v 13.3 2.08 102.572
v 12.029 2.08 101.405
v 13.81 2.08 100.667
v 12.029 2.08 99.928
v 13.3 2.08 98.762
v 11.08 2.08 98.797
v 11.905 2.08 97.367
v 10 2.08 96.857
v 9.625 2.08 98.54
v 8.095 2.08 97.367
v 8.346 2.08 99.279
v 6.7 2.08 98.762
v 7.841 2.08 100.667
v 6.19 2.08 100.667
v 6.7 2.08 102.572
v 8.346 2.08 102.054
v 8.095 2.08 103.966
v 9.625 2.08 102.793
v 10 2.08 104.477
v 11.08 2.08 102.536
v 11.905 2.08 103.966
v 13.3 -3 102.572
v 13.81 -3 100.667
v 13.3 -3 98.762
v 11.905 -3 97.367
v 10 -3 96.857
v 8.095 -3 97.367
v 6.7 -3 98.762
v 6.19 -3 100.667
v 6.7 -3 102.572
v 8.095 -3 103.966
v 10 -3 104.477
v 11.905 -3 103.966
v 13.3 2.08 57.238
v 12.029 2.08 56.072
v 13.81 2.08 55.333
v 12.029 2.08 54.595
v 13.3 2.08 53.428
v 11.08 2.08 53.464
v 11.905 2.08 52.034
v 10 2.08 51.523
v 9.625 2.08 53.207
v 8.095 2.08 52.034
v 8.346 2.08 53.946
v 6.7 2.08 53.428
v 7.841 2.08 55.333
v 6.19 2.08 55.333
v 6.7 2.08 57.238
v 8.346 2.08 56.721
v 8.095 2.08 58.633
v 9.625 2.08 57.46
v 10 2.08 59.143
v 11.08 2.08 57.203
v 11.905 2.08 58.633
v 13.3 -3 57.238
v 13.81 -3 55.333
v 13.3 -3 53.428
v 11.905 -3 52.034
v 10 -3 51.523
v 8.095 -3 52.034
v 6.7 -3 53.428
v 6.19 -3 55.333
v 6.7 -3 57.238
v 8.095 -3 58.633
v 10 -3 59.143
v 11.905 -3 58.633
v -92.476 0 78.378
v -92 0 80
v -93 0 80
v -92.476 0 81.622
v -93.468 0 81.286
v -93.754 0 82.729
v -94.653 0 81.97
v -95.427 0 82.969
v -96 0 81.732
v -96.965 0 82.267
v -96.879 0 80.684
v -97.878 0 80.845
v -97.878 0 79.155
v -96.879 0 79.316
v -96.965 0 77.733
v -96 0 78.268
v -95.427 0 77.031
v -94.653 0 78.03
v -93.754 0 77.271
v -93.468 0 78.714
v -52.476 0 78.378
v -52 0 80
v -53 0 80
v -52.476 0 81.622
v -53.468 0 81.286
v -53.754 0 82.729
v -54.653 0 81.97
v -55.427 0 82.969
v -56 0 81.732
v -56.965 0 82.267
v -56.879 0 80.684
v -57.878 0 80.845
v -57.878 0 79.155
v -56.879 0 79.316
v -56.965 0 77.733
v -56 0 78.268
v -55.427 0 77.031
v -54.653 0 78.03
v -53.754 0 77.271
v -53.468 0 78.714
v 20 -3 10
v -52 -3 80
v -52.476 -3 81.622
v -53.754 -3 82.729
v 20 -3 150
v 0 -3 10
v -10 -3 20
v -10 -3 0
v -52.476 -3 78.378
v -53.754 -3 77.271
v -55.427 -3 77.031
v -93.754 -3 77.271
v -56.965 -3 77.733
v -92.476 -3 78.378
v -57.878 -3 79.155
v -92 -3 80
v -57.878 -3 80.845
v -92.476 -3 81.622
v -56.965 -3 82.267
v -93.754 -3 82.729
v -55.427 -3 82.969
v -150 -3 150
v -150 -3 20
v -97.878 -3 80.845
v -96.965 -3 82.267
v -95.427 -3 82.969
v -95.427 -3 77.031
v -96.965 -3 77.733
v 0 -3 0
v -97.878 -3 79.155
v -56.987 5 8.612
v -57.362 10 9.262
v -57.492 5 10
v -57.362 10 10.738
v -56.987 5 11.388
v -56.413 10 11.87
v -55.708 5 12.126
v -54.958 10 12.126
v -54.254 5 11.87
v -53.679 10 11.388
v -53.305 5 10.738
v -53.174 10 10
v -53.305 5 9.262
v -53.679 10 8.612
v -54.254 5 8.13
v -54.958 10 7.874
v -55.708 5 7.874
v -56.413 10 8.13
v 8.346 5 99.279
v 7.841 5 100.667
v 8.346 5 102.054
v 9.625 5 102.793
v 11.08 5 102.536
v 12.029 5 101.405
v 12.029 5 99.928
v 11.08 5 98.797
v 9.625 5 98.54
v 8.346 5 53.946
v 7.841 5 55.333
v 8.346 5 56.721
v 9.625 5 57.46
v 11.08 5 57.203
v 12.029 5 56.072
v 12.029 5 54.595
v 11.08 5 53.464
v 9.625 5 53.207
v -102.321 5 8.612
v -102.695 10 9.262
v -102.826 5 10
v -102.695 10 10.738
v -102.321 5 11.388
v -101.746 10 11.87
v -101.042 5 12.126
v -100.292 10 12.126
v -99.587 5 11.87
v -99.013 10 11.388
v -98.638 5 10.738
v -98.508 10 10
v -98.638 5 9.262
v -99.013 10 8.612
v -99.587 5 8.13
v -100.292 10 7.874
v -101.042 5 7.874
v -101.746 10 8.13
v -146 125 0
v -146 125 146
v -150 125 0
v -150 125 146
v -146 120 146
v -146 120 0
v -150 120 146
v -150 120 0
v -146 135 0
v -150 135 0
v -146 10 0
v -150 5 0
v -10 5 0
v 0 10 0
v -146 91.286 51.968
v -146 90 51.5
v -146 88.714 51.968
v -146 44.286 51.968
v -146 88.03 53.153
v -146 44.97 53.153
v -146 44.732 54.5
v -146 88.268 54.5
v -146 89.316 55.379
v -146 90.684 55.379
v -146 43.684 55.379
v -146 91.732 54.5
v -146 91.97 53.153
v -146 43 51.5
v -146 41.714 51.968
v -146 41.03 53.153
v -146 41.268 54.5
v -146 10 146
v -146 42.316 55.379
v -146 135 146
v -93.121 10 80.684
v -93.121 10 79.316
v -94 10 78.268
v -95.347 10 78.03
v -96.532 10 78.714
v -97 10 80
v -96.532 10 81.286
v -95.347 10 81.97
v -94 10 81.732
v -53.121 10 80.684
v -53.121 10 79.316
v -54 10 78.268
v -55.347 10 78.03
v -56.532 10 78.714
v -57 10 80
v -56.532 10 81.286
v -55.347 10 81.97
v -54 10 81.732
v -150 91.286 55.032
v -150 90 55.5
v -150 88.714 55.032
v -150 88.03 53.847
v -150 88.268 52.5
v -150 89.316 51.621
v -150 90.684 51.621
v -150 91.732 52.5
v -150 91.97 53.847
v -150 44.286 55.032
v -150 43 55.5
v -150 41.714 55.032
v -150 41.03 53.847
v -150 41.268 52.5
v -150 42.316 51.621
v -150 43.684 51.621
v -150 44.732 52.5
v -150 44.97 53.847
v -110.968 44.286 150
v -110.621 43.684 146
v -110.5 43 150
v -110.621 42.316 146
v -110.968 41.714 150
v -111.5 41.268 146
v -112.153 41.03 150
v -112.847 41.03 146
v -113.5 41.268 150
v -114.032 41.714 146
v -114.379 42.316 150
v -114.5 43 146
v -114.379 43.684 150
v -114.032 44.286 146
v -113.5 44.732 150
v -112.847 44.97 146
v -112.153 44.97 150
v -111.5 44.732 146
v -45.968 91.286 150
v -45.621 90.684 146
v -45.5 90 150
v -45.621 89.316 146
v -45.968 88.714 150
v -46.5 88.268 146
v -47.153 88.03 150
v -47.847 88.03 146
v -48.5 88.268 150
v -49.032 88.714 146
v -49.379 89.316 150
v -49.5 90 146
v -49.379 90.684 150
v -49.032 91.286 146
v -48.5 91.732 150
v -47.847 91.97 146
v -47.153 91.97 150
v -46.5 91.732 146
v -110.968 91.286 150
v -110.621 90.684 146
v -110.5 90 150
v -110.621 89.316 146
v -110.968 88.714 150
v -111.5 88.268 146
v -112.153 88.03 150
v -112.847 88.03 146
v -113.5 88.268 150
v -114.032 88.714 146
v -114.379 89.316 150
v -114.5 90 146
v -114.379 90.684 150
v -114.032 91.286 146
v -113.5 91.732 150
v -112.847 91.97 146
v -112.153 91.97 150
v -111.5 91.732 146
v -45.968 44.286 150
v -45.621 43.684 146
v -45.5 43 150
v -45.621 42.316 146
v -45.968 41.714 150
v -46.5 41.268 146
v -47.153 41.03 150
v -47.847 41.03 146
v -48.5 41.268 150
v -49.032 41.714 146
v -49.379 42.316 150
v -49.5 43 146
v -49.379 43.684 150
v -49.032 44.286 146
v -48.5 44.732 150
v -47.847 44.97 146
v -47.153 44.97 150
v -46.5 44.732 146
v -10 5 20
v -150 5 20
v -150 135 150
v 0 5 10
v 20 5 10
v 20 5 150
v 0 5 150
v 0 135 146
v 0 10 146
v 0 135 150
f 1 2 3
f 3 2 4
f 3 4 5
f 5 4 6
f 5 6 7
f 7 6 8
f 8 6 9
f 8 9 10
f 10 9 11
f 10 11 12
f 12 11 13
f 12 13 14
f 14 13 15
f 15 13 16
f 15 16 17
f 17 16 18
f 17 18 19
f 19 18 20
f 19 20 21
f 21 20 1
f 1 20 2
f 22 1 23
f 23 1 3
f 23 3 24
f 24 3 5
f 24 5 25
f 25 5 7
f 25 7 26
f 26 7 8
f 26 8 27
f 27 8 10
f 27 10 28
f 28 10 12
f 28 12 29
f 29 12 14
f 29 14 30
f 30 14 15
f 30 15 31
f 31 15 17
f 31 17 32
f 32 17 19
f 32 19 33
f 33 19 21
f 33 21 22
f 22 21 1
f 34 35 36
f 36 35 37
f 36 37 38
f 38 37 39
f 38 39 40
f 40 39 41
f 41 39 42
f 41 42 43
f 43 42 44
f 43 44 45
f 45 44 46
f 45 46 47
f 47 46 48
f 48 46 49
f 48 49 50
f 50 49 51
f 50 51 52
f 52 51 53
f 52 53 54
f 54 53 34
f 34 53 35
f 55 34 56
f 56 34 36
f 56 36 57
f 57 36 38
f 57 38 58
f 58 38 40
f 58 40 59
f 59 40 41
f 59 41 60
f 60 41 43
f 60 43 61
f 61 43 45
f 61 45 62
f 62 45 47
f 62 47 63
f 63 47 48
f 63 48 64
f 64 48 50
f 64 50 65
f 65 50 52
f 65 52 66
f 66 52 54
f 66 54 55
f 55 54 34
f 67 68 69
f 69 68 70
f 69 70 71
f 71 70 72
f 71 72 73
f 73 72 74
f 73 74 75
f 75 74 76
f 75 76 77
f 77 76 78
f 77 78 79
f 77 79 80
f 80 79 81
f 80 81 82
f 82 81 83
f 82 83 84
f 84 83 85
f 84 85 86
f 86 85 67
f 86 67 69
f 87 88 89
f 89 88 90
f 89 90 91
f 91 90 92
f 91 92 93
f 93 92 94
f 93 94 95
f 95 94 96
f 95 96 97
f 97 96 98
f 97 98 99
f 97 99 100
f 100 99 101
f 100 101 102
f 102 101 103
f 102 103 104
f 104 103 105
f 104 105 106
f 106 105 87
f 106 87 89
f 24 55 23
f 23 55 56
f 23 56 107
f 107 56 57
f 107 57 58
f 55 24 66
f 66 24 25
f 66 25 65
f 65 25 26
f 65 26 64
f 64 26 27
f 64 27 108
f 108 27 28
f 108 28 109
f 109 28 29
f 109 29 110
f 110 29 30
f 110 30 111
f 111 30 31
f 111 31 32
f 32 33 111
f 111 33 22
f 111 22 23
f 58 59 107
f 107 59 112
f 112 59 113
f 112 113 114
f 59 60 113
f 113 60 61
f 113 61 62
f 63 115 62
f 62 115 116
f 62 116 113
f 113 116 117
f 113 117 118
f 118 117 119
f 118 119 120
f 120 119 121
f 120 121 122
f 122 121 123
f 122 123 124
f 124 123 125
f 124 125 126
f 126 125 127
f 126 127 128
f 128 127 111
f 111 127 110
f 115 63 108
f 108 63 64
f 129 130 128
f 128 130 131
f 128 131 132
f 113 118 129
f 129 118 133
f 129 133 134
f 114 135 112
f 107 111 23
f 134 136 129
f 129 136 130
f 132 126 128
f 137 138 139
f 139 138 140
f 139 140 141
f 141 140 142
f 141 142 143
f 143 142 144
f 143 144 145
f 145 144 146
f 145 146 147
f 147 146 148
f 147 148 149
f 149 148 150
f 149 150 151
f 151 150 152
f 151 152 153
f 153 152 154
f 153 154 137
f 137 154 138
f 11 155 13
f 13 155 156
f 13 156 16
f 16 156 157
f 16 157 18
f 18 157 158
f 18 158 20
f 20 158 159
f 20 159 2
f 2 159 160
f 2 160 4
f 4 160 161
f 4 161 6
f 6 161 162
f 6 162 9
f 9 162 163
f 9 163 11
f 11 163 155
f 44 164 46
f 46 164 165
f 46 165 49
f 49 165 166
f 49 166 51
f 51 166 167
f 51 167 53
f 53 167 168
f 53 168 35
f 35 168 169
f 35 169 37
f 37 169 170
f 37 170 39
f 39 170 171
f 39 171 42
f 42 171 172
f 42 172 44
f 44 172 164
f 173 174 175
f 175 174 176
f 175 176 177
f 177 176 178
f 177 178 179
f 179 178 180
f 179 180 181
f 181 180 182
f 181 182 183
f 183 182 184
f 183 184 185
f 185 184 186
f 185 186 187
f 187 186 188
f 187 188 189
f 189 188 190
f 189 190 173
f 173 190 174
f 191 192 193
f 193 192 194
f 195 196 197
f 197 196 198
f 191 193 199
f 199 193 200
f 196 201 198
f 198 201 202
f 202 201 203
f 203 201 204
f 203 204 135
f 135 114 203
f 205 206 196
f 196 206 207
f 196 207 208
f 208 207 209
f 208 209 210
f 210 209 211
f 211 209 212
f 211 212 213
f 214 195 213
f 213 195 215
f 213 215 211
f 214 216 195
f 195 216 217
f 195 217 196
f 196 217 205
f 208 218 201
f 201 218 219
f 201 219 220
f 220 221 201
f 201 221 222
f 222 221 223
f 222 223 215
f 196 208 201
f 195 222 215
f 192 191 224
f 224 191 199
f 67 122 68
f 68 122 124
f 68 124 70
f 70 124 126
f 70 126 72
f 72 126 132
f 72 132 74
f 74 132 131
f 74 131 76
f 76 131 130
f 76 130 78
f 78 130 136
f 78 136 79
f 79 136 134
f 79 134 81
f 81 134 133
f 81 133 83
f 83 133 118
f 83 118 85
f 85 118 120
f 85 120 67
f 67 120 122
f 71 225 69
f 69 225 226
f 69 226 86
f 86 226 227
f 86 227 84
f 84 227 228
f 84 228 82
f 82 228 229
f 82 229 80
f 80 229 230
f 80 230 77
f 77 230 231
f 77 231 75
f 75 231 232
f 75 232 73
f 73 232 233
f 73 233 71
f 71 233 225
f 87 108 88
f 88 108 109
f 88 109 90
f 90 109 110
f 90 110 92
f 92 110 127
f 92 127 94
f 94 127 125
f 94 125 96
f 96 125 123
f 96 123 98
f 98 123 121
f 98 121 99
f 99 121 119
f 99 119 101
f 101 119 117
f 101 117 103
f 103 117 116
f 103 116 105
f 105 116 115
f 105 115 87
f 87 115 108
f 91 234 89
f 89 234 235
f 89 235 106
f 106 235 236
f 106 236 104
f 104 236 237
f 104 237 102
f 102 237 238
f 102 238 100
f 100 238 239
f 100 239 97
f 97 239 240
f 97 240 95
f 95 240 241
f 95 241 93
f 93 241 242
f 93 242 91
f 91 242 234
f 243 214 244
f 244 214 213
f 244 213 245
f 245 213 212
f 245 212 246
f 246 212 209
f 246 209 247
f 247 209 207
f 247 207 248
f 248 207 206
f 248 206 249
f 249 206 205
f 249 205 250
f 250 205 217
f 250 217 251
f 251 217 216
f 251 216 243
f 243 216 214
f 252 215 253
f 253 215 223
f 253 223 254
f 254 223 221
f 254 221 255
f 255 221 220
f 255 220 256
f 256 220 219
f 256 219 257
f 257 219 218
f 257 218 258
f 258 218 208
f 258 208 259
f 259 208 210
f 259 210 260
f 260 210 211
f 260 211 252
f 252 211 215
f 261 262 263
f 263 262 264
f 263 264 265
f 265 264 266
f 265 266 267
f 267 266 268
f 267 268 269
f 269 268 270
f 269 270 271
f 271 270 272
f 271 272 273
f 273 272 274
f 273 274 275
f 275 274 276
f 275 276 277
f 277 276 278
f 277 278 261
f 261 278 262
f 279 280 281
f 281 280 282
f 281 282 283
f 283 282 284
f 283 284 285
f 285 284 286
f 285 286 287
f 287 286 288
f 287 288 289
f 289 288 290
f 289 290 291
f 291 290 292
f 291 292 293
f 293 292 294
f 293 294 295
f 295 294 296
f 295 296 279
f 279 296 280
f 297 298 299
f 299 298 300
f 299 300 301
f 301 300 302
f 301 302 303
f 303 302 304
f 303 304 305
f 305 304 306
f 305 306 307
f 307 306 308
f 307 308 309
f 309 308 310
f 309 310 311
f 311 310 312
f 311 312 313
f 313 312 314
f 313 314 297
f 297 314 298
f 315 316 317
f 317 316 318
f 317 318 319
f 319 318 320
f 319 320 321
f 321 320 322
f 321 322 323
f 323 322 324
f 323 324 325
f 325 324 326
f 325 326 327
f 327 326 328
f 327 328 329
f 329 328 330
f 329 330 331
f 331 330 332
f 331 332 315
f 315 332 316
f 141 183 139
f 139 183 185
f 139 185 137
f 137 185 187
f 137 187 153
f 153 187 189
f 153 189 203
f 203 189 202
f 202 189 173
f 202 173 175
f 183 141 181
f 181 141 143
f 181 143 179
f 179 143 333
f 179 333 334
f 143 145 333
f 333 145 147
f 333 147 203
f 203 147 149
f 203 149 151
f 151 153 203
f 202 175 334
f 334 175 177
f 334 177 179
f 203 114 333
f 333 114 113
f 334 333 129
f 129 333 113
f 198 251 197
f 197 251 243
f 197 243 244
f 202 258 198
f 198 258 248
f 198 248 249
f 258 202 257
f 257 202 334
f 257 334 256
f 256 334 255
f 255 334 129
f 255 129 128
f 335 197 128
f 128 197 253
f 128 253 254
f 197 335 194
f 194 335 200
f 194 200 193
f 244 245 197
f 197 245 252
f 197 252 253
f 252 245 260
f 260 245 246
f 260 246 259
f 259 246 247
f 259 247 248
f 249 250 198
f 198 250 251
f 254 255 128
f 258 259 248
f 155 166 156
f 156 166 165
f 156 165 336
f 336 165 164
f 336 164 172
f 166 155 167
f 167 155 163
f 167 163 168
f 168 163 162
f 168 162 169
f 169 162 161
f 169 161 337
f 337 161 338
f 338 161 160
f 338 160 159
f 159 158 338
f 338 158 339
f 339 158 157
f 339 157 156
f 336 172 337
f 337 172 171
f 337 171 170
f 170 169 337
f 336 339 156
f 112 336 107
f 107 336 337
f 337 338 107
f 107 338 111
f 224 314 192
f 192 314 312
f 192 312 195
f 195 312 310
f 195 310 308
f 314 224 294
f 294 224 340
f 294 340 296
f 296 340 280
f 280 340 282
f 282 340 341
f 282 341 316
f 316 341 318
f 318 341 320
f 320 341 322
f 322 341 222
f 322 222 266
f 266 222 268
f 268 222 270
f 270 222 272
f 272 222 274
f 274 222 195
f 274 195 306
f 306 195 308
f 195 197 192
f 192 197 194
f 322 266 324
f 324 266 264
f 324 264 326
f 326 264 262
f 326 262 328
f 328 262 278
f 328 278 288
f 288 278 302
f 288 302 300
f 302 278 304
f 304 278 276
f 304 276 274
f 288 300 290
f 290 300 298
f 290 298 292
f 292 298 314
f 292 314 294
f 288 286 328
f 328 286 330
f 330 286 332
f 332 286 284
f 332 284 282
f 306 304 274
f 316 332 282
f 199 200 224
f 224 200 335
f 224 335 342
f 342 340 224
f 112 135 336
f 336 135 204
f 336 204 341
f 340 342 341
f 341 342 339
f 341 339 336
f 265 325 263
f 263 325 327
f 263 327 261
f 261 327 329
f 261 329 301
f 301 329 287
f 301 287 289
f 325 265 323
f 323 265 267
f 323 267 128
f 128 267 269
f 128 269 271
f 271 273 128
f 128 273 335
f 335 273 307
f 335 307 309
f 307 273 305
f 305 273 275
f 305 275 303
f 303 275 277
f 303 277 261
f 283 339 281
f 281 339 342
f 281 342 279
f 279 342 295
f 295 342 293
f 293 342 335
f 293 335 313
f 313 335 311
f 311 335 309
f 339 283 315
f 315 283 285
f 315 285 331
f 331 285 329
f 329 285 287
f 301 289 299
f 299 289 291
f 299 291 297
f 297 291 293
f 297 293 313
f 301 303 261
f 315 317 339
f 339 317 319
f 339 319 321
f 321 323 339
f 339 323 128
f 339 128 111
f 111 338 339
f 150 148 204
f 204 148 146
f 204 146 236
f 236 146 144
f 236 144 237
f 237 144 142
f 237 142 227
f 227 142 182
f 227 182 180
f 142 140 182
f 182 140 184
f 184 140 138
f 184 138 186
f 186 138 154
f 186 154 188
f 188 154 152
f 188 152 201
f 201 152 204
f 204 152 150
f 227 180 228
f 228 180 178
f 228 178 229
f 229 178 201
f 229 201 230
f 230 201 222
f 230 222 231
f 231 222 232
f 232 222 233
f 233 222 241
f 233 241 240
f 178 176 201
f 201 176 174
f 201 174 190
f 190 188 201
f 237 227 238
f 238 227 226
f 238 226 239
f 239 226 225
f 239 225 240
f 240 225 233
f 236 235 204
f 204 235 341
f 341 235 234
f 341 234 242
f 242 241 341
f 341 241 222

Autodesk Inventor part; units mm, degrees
ref_plane "YZ Plane" through (0, 0, 0) normal (1, 0, 0) x (0, 1, 0)
ref_plane "XZ Plane" through (0, 0, 0) normal (0, 1, 0) x (-1, 0, 0)
ref_plane "XY Plane" through (0, 0, 0) normal (0, 0, 1) x (1, 0, 0)
sketch "Sketch1" plane through (0, 0, 0) normal (0, 1, 0) x (-1, 0, 0)
  line L0 (0, 0) -> (150, 0)
  line L1 (150, 0) -> (150, 150)
  line L2 (150, 150) -> (0, 150)
  line L3 (0, 150) -> (0, 0)
  dimension "d0" = 150
  dimension "d1" = 150
extrude "Extrusion1" add sketch "Sketch1" along normal blind 10
sketch "Sketch2" plane through (0, 10, 0) normal (0, 1, 0) x (1, 0, 0)
  line L0 (0, 0) -> (-150, 0) projected
  line L1 (-150, 0) -> (-146, 0)
  line L2 (-146, 0) -> (-146, -146)
  line L3 (-146, -146) -> (0, -146)
  line L4 (0, -150) -> (0, 0) projected
  line L5 (-150, 0) -> (-150, -150) projected
  line L6 (-150, -150) -> (0, -150) projected
  line L7 (0, -150) -> (0, 0) projected
  line L8 (0, 0) -> (-150, 0) projected
  dimension "d4" = 4
  dimension "d5" = 146
extrude "Extrusion2" add sketch "Sketch2" along normal blind 125 contours L2 L3 L4 L6 L5 L0
sketch "Sketch3" plane through (0, 0, 150) normal (1, 0, 0) x (0, 0, -1)
  line L0 (150, 0) -> (0, 0) projected
  line L1 (0, 0) -> (0, 5)
  line L2 (0, 0) -> (0, 135) projected
  line L3 (0, 5) -> (140, 5)
  line L4 (140, 5) -> (140, 0)
  line L5 (140, 0) -> (0, 0)
  dimension "d8" = 5
  dimension "d9" = 140
  dimension "d10" = 90
extrude "Extrusion3" add sketch "Sketch3" along normal blind 20
sketch "Sketch4" plane through (0, 0, 0) normal (0, 0, -1) x (-1, 0, 0)
  line L0 (150, 0) -> (-20, 0) projected
  line L1 (150, 0) -> (150, 5)
  line L2 (150, 5) -> (10, 5)
  line L3 (10, 5) -> (10, 0)
  line L4 (10, 0) -> (150, 0)
  point P0 (0, 0)
  point P1 (10, 0)
  dimension "d13" = 5
  dimension "d14" = 140
extrude "Extrusion4" cut sketch "Sketch4" against normal blind 20
sketch "Sketch5" plane through (0, 10, 146) normal (0, 0, -1) x (-1, 0, 0)
  line L0 (150, 125) -> (0, 125) projected
  line L1 (0, 125) -> (25, 125)
  line L2 (25, 125) -> (25, 85)
  line L3 (25, 85) -> (70, 85)
  line L4 (70, 85) -> (70, 28)
  line L5 (70, 28) -> (25, 28)
  line L6 (25, 28) -> (25, 85)
  line L7 (70, 85) -> (90, 85)
  line L8 (90, 85) -> (90, 28)
  line L9 (90, 28) -> (135, 28)
  line L10 (135, 28) -> (135, 85)
  line L11 (135, 85) -> (90, 85)
  line L12 (47.5, 85) -> (47.5, 80)
  line L13 (47.5, 80) -> (47.5, 33)
  line L14 (112.5, 85) -> (112.5, 80)
  line L15 (112.5, 80) -> (112.5, 33)
  point P0 (0, -10)
  dimension "d17" = 25
  dimension "d18" = 40
  dimension "d19" = 45
  dimension "d20" = 57
  dimension "d21" = 20
  dimension "d22" = 45
  dimension "d23" = 5
  dimension "d24" = 47
  dimension "d25" = 5
  dimension "d26" = 47
hole "Hole1" at (-47.5, 90, 146) at (-112.5, 90, 146) at (-112.5, 43, 146) at (-47.5, 43, 146) direction (0, 0, 1) diameter 4.318 end through all
sketch "Sketch6" plane through (-146, 10, 146) normal (1, 0, 0) x (0, 0, -1)
  line L0 (0, 125) -> (146, 125) projected
  line L1 (0, 125) -> (70, 125)
  line L2 (70, 125) -> (70, 85)
  line L3 (70, 85) -> (115, 85)
  line L4 (115, 85) -> (115, 28)
  line L5 (115, 28) -> (70, 28)
  line L6 (70, 28) -> (70, 85)
  line L7 (92.5, 85) -> (92.5, 80)
  line L8 (92.5, 80) -> (92.5, 33)
  point P0 (146, -10)
  dimension "d34" = 70
  dimension "d35" = 40
  dimension "d36" = 45
  dimension "d37" = 57
  dimension "d38" = 5
  dimension "d39" = 47
hole "Hole2" at (-146, 90, 53.5) at (-146, 43, 53.5) direction (-1, 0, 0) diameter 4.318 end through all
sketch "Sketch7" plane through (0, 0, 0) normal (0, -1, 0) x (1, 0, 0)
  line L0 (-150, 0) -> (-150, 150) projected
  line L1 (-150, 0) -> (-75, 0)
  line L2 (0, 0) -> (-146, 0) projected
  line L3 (-75, 0) -> (-75, 80)
  line L4 (-75, 80) -> (-55, 80)
  line L5 (-55, 80) -> (-95, 80)
  dimension "d47" = 75
  dimension "d48" = 80
  dimension "d49" = 20
  dimension "d50" = 40
hole "Hole3" at (-95, 0, 80) at (-55, 0, 80) direction (0, 1, 0) diameter 4 end through all counterbore diameter 6 counterbore depth 3
sketch "Sketch8" plane through (-150, 0, 150) normal (-1, 0, 0) x (0, 0, 1)
  line L0 (-150, 10) -> (-150, 135) projected
  line L1 (-150, 135) -> (-150, 125)
  line L2 (-150, 125) -> (-4, 125)
  line L3 (-4, 10) -> (-4, 135) projected
  line L4 (-4, 125) -> (-4, 120)
  line L5 (-4, 120) -> (-150, 120)
  line L6 (-150, 125) -> (-150, 120)
  point P0 (-150, 0)
  dimension "d58" = 10
  dimension "d59" = 146
  dimension "d60" = 5
extrude "Extrusion5" cut sketch "Sketch8" against normal blind 10
sketch "Sketch9" plane through (0, 10, 0) normal (0, 1, 0) x (1, 0, 0)
  line L0 (0, -10) -> (20, -10) projected
  line L1 (0, -10) -> (0, -55.3333)
  line L2 (0, -146) -> (0, 0) projected
  line L3 (0, -55.3333) -> (10, -55.3333)
  line L4 (10, -55.3333) -> (10, -100.6667)
  line L5 (-10, 0) -> (-10, -20) projected
  line L6 (-10, 0) -> (-55.3333, 0)
  line L7 (0, 0) -> (-146, 0) projected
  line L8 (-55.3333, 0) -> (-55.3333, -10)
  line L9 (-55.3333, -10) -> (-100.6667, -10)
  dimension "d63" = 45.3333
  dimension "d64" = 10
  dimension "d65" = 45.3333
  dimension "d66" = 45.3333
  dimension "d67" = 10
  dimension "d68" = 45.3333
hole "Hole4" at (10, 10, 100.6667) at (10, 10, 55.3333) at (-55.3333, 10, 10) at (-100.6667, 10, 10) direction (0, -1, 0) diameter 4.318 end through all
sketch "Sketch10" plane through (0, 10, 0) normal (0, 1, 0) x (1, 0, 0)
  point P0 (0, 0)
sketch "Sketch11" plane through (0, 0, 0) normal (0, -1, 0) x (1, 0, 0)
  circle A0 centre (10, 100.6667) radius 2.159 projected
  circle A1 centre (10, 55.3333) radius 2.159 projected
  circle A2 centre (-95, 80) radius 3 projected
  circle A3 centre (-55, 80) radius 3 projected
  line L0 (-10, 20) -> (-10, 0) projected
  line L1 (0, 0) -> (-10, 0) projected
  line L2 (0, 10) -> (0, 0) projected
  line L3 (0, 10) -> (20, 10) projected
  line L4 (20, 150) -> (20, 10) projected
  line L5 (-150, 150) -> (20, 150) projected
  line L6 (-150, 20) -> (-150, 150) projected
  line L7 (-150, 20) -> (-10, 20) projected
extrude "Extrusion6" add sketch "Sketch11" along normal blind 3
sketch "Sketch12" plane through (-55, 3, 80) normal (0, -1, 0) x (1, 0, 0)
  circle A0 centre (0, 0) radius 3 projected
  circle A1 centre (0, 0) radius 2 projected
  circle A2 centre (-40, 0) radius 3 projected
  circle A3 centre (-40, 0) radius 2 projected
  point P0 (55, -80)
extrude "Extrusion7" add sketch "Sketch12" along normal blind 3
sketch "Sketch13" plane through (0, -3, 0) normal (0, -1, 0) x (1, 0, 0)
  circle A0 centre (10, 100.6667) radius 2.159 projected
  circle A1 centre (10, 55.3333) radius 2.159 projected
  point P0 (0, 0)
hole "Hole5" at (10, -3, 100.6667) at (10, -3, 55.3333) direction (0, 1, 0) diameter 4.318 end through all counterbore diameter 7.62 counterbore depth 5.08
properties part number "Quarter 2"
